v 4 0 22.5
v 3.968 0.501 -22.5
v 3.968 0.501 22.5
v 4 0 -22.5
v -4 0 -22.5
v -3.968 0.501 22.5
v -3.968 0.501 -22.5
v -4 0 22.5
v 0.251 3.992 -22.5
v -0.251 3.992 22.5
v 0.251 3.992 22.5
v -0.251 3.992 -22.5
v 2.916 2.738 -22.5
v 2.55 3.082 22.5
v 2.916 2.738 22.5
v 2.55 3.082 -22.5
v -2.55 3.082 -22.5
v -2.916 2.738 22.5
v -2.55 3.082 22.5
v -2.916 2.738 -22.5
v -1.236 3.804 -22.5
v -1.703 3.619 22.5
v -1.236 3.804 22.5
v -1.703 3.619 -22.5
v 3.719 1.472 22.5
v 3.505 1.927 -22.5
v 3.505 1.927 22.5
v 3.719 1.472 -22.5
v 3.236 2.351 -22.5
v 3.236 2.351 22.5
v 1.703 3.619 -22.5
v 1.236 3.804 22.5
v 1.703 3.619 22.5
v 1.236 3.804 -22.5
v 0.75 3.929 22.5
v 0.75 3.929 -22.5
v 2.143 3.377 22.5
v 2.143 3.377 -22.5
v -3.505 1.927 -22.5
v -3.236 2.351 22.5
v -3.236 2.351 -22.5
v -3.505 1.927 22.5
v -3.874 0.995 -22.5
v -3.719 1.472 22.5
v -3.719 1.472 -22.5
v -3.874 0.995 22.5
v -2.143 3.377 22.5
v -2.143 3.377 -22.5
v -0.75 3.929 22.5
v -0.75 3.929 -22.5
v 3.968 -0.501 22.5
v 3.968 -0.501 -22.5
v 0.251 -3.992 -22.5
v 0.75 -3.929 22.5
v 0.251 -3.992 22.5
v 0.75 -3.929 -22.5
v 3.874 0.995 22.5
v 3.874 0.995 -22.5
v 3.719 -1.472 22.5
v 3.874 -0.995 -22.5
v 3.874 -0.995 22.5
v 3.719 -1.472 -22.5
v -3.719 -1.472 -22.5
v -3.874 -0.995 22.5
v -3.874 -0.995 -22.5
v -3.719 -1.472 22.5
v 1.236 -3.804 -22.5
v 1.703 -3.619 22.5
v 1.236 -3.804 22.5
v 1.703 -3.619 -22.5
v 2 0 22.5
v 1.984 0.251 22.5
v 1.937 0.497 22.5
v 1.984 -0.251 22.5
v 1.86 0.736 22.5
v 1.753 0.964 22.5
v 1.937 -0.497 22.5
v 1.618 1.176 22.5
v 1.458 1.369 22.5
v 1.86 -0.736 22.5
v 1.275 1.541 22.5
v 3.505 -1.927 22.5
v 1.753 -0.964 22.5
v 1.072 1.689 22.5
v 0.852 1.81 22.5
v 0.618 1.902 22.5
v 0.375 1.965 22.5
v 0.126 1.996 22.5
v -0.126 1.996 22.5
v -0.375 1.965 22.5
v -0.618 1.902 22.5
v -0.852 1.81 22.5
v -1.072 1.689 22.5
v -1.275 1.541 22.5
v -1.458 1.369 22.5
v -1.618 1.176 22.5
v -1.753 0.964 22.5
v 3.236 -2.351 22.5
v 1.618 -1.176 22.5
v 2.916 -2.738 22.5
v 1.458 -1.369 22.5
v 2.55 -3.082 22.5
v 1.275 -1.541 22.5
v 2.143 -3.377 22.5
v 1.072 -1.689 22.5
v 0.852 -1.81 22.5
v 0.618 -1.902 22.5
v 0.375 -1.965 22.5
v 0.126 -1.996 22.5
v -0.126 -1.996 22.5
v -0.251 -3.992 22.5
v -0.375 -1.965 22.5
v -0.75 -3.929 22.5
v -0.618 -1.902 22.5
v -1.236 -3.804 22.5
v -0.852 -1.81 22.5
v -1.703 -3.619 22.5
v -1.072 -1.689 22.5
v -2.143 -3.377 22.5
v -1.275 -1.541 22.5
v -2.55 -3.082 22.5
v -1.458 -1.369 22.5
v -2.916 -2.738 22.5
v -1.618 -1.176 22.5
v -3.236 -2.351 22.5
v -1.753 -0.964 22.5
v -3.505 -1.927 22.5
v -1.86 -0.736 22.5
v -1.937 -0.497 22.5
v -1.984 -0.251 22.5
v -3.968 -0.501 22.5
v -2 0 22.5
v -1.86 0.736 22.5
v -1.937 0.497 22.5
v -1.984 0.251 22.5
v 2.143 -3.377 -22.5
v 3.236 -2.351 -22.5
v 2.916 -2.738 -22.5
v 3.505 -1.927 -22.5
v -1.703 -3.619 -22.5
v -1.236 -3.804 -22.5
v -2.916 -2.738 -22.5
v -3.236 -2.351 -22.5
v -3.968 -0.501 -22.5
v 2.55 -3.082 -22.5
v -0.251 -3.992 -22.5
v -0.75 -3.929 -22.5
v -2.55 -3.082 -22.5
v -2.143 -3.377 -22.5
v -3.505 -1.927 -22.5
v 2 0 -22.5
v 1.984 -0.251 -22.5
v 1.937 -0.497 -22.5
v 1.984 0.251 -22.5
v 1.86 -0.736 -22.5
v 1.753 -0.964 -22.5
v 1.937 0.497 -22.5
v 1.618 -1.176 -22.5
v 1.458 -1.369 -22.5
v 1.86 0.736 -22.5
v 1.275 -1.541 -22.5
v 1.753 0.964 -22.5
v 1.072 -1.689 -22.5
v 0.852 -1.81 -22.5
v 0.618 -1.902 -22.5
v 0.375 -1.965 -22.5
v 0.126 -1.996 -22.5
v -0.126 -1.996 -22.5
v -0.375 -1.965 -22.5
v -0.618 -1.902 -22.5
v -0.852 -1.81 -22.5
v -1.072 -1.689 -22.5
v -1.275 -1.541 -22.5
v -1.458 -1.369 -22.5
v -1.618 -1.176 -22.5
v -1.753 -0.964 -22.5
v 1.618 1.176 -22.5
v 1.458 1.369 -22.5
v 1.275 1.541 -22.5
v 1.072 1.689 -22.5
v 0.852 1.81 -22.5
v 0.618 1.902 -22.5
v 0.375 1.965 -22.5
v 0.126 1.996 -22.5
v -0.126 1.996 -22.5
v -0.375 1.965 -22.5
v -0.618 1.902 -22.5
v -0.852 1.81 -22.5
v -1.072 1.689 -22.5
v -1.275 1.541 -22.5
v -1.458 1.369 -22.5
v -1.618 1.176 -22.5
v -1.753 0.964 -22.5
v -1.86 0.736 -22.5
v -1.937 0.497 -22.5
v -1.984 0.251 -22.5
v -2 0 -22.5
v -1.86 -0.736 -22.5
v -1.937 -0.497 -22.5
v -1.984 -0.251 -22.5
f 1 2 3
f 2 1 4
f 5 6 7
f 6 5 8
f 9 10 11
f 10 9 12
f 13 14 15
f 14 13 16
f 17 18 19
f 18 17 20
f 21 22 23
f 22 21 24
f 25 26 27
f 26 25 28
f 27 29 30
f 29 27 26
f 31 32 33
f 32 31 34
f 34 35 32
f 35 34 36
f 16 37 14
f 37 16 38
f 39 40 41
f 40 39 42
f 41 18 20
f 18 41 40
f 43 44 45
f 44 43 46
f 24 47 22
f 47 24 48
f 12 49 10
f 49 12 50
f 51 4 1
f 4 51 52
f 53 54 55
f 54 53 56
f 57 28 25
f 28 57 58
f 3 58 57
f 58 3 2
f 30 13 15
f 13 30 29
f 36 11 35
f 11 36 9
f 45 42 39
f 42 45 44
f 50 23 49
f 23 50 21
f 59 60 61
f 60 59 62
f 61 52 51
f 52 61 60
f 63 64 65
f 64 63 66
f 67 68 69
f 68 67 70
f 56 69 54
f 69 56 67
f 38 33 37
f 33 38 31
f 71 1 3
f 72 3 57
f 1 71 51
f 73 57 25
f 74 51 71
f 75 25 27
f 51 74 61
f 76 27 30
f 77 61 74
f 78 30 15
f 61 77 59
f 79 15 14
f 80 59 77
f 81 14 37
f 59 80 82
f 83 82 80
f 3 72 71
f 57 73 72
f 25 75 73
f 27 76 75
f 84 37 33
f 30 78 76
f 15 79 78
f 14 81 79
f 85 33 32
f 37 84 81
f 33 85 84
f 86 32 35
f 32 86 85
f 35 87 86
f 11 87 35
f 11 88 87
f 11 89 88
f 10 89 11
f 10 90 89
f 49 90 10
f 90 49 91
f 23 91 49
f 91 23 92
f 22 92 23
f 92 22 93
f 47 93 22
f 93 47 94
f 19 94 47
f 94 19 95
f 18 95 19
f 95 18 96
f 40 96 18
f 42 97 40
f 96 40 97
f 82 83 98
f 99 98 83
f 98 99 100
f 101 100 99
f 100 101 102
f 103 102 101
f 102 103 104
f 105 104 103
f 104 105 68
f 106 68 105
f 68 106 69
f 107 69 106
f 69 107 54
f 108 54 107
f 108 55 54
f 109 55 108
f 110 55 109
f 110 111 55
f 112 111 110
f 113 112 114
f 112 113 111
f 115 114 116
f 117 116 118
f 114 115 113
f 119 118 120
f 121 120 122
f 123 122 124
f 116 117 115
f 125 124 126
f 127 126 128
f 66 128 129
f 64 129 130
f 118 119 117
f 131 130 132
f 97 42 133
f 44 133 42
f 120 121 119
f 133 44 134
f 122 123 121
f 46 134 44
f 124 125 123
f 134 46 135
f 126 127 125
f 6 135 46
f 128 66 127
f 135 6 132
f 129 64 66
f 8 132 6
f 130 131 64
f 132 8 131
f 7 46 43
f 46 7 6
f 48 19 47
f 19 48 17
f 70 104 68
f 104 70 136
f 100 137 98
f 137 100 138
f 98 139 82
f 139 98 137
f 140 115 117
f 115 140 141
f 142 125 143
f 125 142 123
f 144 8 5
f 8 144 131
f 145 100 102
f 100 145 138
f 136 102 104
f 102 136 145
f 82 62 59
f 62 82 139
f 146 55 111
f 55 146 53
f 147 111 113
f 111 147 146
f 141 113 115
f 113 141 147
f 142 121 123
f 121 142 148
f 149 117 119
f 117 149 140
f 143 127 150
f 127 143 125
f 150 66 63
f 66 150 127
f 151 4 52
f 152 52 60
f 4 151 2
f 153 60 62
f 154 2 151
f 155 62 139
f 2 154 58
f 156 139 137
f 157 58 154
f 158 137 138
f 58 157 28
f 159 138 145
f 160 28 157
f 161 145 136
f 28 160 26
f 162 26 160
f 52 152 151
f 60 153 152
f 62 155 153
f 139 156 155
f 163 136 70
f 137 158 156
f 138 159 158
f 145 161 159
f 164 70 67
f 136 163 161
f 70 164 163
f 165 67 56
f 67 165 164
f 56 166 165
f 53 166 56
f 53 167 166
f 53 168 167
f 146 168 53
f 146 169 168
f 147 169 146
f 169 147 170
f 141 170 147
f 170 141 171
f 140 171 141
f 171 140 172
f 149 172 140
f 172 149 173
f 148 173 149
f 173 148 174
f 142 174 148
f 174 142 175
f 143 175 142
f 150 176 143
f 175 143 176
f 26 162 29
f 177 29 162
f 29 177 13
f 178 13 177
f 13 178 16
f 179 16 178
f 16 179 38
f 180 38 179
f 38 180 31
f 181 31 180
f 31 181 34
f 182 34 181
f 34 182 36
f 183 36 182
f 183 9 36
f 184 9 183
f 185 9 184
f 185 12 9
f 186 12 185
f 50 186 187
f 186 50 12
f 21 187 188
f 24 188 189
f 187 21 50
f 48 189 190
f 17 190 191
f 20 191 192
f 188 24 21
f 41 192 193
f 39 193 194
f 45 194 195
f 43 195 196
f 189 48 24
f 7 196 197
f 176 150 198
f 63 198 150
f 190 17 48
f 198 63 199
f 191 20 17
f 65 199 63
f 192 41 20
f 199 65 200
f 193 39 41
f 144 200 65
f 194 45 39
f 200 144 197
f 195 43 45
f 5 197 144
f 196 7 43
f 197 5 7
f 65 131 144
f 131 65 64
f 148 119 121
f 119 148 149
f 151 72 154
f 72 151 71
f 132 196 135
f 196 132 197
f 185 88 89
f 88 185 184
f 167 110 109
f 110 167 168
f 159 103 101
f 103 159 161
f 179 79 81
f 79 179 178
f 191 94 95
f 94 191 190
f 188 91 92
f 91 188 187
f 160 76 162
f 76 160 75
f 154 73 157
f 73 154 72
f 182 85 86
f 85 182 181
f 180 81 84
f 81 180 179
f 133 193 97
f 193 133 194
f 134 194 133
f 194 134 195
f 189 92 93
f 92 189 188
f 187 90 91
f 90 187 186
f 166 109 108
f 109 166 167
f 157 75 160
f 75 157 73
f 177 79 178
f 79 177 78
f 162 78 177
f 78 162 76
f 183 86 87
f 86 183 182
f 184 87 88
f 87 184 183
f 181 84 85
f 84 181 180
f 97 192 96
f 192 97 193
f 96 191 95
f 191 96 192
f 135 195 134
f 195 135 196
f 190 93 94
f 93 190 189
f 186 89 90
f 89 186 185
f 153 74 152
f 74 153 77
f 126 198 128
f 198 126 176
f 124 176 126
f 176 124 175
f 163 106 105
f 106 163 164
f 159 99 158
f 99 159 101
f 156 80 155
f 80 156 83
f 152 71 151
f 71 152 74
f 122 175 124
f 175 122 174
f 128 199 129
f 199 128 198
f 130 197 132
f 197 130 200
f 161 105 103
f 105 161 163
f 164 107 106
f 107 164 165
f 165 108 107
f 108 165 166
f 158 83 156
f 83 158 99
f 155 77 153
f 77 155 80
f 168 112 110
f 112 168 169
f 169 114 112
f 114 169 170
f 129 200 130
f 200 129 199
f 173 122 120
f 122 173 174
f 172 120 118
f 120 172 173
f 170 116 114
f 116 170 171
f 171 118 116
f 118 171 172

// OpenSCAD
$fn = 50;


difference() {
	union() {
		translate(v = [0, 0, -22.5000000000]) {
			cylinder(h = 45, r = 4.0000000000);
		}
	}
	union() {
		translate(v = [0, 0, -100.0000000000]) {
			cylinder(h = 200, r = 2.0000000000);
		}
	}
}
